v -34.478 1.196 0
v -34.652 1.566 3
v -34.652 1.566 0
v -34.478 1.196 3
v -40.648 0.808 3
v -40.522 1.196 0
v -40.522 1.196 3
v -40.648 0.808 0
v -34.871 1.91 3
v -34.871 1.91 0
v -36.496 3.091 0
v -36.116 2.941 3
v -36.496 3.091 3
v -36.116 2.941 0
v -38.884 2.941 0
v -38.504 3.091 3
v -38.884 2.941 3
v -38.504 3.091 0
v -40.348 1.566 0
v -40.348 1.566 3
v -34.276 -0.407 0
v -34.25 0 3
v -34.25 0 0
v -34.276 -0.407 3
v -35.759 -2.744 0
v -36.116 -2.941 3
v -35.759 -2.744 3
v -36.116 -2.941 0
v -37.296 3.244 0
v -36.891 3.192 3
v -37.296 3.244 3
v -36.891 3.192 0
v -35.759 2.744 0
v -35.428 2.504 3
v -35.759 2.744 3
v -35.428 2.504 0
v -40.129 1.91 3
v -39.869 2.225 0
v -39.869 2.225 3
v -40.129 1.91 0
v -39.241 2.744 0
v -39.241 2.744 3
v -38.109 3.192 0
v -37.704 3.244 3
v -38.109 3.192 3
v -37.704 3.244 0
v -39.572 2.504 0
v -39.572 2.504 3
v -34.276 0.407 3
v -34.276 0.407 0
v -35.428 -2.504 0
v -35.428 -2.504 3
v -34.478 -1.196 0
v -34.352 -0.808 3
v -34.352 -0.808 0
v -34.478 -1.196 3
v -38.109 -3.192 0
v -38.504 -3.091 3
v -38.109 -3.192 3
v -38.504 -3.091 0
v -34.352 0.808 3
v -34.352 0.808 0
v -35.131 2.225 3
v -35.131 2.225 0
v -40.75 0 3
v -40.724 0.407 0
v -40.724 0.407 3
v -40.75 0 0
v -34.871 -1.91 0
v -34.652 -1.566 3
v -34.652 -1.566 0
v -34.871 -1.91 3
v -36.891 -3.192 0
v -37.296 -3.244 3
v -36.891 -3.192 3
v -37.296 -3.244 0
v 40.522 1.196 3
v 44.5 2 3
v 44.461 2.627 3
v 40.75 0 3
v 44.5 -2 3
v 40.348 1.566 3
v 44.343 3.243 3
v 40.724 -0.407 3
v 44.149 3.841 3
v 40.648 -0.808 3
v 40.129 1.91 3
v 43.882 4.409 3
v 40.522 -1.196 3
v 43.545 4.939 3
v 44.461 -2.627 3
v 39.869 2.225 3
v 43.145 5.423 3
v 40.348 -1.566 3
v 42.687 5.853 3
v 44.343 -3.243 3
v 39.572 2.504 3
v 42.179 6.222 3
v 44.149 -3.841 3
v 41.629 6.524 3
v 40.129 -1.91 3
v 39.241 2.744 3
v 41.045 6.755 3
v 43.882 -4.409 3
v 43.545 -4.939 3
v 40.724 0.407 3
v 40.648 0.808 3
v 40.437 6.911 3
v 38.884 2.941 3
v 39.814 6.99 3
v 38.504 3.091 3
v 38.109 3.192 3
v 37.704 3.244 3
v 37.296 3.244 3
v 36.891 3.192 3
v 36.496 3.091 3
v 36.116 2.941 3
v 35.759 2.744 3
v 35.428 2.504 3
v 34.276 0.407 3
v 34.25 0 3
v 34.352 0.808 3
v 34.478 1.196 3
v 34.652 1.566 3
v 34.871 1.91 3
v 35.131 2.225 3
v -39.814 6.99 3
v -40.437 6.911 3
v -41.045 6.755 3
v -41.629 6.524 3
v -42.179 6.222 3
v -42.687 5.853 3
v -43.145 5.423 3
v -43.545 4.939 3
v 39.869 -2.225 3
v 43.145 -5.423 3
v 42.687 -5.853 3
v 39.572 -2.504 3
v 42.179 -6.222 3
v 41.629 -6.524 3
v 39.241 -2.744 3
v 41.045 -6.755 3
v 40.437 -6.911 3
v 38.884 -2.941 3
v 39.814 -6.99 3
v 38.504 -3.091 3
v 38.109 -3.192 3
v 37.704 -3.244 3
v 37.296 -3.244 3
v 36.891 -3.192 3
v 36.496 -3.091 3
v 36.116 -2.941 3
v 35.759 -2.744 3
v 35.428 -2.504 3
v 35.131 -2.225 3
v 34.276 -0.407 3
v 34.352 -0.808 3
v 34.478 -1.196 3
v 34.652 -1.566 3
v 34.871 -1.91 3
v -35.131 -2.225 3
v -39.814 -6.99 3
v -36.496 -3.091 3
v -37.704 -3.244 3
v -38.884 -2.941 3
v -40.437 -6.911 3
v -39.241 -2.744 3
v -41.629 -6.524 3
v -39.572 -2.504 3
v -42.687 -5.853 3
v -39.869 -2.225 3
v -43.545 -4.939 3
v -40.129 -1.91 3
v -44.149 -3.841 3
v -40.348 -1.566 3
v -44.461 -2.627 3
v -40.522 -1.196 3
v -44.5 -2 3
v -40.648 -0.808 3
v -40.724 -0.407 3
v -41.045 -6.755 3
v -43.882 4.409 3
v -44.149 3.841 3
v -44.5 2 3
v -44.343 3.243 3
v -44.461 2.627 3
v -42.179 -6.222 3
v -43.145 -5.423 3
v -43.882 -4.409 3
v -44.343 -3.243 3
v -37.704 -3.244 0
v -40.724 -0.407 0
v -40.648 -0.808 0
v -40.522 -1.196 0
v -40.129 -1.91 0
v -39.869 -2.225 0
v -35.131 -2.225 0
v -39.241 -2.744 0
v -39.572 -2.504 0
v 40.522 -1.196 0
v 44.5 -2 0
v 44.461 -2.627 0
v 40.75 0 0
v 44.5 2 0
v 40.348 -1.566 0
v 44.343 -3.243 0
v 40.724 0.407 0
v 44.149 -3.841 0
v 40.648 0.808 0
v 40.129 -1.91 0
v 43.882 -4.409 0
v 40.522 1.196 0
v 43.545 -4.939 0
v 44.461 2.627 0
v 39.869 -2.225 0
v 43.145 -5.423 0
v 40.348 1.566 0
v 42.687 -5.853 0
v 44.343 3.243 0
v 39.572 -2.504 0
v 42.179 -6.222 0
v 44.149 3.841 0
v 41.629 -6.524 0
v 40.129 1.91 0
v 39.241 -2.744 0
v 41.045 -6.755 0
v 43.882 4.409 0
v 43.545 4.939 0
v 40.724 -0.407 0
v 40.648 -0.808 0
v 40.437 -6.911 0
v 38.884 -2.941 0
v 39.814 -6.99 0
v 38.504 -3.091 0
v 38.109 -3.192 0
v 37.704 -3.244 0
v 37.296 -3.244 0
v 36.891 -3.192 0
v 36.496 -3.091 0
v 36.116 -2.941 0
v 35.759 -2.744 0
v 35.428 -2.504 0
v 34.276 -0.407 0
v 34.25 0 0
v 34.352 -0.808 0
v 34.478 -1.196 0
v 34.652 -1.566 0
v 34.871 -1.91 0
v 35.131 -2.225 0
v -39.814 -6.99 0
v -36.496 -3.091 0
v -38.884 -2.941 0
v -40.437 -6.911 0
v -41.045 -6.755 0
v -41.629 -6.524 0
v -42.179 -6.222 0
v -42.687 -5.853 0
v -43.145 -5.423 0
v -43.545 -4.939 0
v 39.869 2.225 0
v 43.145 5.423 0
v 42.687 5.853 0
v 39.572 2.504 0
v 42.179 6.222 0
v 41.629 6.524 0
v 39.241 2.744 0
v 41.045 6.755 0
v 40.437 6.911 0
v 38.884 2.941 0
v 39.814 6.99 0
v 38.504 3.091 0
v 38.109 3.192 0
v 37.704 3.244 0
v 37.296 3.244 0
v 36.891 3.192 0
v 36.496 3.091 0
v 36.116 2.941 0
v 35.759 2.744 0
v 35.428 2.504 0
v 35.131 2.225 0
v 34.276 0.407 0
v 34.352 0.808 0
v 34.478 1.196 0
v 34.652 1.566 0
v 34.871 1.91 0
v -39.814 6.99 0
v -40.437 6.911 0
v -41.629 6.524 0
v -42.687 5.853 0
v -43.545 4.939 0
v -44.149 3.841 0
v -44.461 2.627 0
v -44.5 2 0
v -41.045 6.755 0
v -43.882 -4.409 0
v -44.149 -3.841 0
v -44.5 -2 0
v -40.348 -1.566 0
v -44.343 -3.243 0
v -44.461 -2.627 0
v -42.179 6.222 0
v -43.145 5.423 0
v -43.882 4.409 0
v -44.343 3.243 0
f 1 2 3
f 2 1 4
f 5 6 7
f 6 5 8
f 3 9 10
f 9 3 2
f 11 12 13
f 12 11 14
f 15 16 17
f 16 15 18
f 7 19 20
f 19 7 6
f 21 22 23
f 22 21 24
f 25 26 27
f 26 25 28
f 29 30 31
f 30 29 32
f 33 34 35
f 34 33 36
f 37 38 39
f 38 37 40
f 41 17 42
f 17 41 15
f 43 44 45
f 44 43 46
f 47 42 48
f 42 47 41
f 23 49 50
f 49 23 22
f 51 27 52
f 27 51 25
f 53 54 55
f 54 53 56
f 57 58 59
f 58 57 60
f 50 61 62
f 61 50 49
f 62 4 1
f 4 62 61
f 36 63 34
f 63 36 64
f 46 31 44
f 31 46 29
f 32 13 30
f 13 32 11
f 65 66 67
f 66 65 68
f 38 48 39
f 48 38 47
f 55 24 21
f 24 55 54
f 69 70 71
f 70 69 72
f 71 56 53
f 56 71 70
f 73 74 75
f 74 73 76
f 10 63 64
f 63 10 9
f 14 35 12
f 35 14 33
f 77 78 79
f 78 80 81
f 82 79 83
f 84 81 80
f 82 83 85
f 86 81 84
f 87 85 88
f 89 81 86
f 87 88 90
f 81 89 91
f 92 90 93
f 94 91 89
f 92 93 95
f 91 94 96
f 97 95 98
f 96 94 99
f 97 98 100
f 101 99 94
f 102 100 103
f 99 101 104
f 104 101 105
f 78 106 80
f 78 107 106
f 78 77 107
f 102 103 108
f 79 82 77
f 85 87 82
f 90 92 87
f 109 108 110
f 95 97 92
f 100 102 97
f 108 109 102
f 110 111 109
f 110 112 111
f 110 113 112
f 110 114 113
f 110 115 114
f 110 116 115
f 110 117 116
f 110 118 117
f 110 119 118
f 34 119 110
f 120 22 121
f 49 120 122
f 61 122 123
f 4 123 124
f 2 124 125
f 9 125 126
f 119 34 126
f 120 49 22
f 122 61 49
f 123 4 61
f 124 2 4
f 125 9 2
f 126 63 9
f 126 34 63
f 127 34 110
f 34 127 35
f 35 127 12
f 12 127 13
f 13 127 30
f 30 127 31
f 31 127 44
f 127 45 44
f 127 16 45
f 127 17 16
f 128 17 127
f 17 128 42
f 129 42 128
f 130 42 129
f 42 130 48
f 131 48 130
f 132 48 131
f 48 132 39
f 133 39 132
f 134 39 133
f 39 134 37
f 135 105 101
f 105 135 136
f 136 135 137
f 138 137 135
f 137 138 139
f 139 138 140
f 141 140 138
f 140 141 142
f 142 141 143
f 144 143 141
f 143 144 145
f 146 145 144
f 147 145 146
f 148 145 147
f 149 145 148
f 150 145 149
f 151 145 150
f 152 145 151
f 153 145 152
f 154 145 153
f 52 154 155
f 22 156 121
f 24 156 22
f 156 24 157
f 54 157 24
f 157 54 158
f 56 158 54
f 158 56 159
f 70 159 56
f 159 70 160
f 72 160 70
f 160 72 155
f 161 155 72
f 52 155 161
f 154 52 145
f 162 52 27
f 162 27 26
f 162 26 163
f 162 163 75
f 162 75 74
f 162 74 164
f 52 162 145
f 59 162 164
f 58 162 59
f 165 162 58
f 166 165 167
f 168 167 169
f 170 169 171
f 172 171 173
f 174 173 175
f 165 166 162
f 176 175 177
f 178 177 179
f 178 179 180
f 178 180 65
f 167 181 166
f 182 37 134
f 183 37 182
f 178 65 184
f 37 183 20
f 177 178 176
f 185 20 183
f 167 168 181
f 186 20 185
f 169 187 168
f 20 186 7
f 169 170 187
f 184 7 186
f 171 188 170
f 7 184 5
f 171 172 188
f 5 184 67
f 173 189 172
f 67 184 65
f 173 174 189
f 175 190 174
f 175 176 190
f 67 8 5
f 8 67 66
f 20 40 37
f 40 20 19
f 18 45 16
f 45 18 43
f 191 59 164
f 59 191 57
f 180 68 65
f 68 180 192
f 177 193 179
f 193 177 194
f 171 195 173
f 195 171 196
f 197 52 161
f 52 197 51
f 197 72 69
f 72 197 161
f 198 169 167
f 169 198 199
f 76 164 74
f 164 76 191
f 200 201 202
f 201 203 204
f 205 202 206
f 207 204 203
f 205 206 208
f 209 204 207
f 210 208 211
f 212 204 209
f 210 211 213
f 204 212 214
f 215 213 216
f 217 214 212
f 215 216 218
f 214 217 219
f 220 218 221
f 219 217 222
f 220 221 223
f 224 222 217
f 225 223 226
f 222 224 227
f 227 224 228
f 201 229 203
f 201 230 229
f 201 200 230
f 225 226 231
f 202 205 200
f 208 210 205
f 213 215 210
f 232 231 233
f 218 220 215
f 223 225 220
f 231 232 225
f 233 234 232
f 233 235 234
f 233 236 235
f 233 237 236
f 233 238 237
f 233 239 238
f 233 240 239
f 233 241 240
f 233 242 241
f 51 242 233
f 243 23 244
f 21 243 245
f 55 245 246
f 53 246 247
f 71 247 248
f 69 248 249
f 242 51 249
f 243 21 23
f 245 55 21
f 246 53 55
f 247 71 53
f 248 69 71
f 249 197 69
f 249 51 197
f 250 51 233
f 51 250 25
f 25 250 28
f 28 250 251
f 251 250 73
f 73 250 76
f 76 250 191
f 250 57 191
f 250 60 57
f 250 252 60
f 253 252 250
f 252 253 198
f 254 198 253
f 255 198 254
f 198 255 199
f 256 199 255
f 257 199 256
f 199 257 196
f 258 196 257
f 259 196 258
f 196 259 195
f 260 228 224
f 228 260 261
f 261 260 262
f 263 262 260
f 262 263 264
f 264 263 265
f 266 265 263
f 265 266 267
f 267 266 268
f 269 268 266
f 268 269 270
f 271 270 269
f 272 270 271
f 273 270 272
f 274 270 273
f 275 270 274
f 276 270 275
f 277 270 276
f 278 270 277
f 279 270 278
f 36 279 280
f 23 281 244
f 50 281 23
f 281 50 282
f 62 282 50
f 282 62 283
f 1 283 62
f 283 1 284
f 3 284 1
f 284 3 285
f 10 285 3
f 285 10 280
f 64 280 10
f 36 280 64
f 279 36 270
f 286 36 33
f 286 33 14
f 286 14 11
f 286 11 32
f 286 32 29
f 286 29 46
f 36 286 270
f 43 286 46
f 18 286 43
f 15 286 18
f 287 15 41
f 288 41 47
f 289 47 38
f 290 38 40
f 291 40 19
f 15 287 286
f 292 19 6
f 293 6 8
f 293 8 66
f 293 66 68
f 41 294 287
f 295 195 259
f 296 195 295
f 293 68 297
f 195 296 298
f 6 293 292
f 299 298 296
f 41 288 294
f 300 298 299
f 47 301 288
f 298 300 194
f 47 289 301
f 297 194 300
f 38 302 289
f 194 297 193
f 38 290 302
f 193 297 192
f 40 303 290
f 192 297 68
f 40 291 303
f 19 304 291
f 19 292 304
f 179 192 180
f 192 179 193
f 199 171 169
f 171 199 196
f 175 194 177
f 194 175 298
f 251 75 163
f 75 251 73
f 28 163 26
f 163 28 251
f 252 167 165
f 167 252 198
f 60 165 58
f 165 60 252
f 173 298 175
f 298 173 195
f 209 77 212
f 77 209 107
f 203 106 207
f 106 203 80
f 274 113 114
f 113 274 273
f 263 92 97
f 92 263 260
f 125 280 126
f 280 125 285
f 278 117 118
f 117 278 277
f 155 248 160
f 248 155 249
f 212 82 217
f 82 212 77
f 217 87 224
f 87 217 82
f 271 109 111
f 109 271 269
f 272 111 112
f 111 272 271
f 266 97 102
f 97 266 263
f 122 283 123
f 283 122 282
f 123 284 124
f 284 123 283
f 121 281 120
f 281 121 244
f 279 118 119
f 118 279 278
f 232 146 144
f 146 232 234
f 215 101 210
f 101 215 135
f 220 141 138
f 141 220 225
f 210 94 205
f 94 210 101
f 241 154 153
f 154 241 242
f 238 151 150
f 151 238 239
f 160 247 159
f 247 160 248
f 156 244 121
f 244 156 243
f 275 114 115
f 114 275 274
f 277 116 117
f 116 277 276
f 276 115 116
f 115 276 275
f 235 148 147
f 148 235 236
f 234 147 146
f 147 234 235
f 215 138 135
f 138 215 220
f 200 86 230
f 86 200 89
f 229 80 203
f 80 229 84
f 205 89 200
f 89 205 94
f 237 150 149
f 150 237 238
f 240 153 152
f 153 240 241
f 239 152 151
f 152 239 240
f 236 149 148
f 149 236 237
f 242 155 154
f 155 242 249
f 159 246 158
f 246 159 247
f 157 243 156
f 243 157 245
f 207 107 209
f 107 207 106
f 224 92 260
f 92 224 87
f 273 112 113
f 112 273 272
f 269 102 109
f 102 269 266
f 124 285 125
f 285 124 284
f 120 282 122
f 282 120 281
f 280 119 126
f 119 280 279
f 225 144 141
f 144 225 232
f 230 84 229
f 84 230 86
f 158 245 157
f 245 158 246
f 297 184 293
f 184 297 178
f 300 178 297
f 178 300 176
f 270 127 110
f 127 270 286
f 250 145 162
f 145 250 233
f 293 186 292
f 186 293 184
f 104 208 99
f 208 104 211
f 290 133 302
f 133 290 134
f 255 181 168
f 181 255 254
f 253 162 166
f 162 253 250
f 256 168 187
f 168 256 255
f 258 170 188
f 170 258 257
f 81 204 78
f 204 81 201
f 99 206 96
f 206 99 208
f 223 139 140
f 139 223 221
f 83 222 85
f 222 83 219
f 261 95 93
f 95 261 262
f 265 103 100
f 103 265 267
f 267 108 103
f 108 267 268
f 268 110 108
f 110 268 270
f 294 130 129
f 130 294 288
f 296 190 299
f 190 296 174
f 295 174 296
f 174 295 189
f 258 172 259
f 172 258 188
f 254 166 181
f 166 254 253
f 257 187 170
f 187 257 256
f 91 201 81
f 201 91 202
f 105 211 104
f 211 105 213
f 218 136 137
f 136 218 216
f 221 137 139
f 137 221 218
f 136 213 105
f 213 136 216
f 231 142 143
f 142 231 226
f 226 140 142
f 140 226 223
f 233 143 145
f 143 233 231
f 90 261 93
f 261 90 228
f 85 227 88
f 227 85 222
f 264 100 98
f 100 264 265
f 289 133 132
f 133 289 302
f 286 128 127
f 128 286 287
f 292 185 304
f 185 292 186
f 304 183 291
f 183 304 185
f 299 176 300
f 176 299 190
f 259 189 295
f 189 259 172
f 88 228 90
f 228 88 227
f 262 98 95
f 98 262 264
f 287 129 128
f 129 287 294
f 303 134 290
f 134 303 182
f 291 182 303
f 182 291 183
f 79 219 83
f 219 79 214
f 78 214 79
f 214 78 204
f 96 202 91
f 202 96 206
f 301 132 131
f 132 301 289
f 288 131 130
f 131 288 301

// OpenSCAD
$fn = 50;


difference() {
	union() {
		hull() {
			translate(v = [-39.5000000000, 2.0000000000, 0]) {
				cylinder(h = 3, r = 5);
			}
			translate(v = [39.5000000000, 2.0000000000, 0]) {
				cylinder(h = 3, r = 5);
			}
			translate(v = [-39.5000000000, -2.0000000000, 0]) {
				cylinder(h = 3, r = 5);
			}
			translate(v = [39.5000000000, -2.0000000000, 0]) {
				cylinder(h = 3, r = 5);
			}
		}
	}
	union() {
		translate(v = [-37.5000000000, 0.0000000000, 0]) {
			cylinder(h = 3, r = 3.2500000000);
		}
		translate(v = [37.5000000000, 0.0000000000, 0]) {
			cylinder(h = 3, r = 3.2500000000);
		}
		translate(v = [-37.5000000000, 0.0000000000, 0]) {
			cylinder(h = 3, r = 1.8000000000);
		}
		translate(v = [37.5000000000, 0.0000000000, 0]) {
			cylinder(h = 3, r = 1.8000000000);
		}
		translate(v = [-37.5000000000, 0.0000000000, 0]) {
			cylinder(h = 3, r = 1.8000000000);
		}
		translate(v = [37.5000000000, 0.0000000000, 0]) {
			cylinder(h = 3, r = 1.8000000000);
		}
		translate(v = [-37.5000000000, 0.0000000000, 0]) {
			cylinder(h = 3, r = 1.8000000000);
		}
		translate(v = [37.5000000000, 0.0000000000, 0]) {
			cylinder(h = 3, r = 1.8000000000);
		}
	}
}
